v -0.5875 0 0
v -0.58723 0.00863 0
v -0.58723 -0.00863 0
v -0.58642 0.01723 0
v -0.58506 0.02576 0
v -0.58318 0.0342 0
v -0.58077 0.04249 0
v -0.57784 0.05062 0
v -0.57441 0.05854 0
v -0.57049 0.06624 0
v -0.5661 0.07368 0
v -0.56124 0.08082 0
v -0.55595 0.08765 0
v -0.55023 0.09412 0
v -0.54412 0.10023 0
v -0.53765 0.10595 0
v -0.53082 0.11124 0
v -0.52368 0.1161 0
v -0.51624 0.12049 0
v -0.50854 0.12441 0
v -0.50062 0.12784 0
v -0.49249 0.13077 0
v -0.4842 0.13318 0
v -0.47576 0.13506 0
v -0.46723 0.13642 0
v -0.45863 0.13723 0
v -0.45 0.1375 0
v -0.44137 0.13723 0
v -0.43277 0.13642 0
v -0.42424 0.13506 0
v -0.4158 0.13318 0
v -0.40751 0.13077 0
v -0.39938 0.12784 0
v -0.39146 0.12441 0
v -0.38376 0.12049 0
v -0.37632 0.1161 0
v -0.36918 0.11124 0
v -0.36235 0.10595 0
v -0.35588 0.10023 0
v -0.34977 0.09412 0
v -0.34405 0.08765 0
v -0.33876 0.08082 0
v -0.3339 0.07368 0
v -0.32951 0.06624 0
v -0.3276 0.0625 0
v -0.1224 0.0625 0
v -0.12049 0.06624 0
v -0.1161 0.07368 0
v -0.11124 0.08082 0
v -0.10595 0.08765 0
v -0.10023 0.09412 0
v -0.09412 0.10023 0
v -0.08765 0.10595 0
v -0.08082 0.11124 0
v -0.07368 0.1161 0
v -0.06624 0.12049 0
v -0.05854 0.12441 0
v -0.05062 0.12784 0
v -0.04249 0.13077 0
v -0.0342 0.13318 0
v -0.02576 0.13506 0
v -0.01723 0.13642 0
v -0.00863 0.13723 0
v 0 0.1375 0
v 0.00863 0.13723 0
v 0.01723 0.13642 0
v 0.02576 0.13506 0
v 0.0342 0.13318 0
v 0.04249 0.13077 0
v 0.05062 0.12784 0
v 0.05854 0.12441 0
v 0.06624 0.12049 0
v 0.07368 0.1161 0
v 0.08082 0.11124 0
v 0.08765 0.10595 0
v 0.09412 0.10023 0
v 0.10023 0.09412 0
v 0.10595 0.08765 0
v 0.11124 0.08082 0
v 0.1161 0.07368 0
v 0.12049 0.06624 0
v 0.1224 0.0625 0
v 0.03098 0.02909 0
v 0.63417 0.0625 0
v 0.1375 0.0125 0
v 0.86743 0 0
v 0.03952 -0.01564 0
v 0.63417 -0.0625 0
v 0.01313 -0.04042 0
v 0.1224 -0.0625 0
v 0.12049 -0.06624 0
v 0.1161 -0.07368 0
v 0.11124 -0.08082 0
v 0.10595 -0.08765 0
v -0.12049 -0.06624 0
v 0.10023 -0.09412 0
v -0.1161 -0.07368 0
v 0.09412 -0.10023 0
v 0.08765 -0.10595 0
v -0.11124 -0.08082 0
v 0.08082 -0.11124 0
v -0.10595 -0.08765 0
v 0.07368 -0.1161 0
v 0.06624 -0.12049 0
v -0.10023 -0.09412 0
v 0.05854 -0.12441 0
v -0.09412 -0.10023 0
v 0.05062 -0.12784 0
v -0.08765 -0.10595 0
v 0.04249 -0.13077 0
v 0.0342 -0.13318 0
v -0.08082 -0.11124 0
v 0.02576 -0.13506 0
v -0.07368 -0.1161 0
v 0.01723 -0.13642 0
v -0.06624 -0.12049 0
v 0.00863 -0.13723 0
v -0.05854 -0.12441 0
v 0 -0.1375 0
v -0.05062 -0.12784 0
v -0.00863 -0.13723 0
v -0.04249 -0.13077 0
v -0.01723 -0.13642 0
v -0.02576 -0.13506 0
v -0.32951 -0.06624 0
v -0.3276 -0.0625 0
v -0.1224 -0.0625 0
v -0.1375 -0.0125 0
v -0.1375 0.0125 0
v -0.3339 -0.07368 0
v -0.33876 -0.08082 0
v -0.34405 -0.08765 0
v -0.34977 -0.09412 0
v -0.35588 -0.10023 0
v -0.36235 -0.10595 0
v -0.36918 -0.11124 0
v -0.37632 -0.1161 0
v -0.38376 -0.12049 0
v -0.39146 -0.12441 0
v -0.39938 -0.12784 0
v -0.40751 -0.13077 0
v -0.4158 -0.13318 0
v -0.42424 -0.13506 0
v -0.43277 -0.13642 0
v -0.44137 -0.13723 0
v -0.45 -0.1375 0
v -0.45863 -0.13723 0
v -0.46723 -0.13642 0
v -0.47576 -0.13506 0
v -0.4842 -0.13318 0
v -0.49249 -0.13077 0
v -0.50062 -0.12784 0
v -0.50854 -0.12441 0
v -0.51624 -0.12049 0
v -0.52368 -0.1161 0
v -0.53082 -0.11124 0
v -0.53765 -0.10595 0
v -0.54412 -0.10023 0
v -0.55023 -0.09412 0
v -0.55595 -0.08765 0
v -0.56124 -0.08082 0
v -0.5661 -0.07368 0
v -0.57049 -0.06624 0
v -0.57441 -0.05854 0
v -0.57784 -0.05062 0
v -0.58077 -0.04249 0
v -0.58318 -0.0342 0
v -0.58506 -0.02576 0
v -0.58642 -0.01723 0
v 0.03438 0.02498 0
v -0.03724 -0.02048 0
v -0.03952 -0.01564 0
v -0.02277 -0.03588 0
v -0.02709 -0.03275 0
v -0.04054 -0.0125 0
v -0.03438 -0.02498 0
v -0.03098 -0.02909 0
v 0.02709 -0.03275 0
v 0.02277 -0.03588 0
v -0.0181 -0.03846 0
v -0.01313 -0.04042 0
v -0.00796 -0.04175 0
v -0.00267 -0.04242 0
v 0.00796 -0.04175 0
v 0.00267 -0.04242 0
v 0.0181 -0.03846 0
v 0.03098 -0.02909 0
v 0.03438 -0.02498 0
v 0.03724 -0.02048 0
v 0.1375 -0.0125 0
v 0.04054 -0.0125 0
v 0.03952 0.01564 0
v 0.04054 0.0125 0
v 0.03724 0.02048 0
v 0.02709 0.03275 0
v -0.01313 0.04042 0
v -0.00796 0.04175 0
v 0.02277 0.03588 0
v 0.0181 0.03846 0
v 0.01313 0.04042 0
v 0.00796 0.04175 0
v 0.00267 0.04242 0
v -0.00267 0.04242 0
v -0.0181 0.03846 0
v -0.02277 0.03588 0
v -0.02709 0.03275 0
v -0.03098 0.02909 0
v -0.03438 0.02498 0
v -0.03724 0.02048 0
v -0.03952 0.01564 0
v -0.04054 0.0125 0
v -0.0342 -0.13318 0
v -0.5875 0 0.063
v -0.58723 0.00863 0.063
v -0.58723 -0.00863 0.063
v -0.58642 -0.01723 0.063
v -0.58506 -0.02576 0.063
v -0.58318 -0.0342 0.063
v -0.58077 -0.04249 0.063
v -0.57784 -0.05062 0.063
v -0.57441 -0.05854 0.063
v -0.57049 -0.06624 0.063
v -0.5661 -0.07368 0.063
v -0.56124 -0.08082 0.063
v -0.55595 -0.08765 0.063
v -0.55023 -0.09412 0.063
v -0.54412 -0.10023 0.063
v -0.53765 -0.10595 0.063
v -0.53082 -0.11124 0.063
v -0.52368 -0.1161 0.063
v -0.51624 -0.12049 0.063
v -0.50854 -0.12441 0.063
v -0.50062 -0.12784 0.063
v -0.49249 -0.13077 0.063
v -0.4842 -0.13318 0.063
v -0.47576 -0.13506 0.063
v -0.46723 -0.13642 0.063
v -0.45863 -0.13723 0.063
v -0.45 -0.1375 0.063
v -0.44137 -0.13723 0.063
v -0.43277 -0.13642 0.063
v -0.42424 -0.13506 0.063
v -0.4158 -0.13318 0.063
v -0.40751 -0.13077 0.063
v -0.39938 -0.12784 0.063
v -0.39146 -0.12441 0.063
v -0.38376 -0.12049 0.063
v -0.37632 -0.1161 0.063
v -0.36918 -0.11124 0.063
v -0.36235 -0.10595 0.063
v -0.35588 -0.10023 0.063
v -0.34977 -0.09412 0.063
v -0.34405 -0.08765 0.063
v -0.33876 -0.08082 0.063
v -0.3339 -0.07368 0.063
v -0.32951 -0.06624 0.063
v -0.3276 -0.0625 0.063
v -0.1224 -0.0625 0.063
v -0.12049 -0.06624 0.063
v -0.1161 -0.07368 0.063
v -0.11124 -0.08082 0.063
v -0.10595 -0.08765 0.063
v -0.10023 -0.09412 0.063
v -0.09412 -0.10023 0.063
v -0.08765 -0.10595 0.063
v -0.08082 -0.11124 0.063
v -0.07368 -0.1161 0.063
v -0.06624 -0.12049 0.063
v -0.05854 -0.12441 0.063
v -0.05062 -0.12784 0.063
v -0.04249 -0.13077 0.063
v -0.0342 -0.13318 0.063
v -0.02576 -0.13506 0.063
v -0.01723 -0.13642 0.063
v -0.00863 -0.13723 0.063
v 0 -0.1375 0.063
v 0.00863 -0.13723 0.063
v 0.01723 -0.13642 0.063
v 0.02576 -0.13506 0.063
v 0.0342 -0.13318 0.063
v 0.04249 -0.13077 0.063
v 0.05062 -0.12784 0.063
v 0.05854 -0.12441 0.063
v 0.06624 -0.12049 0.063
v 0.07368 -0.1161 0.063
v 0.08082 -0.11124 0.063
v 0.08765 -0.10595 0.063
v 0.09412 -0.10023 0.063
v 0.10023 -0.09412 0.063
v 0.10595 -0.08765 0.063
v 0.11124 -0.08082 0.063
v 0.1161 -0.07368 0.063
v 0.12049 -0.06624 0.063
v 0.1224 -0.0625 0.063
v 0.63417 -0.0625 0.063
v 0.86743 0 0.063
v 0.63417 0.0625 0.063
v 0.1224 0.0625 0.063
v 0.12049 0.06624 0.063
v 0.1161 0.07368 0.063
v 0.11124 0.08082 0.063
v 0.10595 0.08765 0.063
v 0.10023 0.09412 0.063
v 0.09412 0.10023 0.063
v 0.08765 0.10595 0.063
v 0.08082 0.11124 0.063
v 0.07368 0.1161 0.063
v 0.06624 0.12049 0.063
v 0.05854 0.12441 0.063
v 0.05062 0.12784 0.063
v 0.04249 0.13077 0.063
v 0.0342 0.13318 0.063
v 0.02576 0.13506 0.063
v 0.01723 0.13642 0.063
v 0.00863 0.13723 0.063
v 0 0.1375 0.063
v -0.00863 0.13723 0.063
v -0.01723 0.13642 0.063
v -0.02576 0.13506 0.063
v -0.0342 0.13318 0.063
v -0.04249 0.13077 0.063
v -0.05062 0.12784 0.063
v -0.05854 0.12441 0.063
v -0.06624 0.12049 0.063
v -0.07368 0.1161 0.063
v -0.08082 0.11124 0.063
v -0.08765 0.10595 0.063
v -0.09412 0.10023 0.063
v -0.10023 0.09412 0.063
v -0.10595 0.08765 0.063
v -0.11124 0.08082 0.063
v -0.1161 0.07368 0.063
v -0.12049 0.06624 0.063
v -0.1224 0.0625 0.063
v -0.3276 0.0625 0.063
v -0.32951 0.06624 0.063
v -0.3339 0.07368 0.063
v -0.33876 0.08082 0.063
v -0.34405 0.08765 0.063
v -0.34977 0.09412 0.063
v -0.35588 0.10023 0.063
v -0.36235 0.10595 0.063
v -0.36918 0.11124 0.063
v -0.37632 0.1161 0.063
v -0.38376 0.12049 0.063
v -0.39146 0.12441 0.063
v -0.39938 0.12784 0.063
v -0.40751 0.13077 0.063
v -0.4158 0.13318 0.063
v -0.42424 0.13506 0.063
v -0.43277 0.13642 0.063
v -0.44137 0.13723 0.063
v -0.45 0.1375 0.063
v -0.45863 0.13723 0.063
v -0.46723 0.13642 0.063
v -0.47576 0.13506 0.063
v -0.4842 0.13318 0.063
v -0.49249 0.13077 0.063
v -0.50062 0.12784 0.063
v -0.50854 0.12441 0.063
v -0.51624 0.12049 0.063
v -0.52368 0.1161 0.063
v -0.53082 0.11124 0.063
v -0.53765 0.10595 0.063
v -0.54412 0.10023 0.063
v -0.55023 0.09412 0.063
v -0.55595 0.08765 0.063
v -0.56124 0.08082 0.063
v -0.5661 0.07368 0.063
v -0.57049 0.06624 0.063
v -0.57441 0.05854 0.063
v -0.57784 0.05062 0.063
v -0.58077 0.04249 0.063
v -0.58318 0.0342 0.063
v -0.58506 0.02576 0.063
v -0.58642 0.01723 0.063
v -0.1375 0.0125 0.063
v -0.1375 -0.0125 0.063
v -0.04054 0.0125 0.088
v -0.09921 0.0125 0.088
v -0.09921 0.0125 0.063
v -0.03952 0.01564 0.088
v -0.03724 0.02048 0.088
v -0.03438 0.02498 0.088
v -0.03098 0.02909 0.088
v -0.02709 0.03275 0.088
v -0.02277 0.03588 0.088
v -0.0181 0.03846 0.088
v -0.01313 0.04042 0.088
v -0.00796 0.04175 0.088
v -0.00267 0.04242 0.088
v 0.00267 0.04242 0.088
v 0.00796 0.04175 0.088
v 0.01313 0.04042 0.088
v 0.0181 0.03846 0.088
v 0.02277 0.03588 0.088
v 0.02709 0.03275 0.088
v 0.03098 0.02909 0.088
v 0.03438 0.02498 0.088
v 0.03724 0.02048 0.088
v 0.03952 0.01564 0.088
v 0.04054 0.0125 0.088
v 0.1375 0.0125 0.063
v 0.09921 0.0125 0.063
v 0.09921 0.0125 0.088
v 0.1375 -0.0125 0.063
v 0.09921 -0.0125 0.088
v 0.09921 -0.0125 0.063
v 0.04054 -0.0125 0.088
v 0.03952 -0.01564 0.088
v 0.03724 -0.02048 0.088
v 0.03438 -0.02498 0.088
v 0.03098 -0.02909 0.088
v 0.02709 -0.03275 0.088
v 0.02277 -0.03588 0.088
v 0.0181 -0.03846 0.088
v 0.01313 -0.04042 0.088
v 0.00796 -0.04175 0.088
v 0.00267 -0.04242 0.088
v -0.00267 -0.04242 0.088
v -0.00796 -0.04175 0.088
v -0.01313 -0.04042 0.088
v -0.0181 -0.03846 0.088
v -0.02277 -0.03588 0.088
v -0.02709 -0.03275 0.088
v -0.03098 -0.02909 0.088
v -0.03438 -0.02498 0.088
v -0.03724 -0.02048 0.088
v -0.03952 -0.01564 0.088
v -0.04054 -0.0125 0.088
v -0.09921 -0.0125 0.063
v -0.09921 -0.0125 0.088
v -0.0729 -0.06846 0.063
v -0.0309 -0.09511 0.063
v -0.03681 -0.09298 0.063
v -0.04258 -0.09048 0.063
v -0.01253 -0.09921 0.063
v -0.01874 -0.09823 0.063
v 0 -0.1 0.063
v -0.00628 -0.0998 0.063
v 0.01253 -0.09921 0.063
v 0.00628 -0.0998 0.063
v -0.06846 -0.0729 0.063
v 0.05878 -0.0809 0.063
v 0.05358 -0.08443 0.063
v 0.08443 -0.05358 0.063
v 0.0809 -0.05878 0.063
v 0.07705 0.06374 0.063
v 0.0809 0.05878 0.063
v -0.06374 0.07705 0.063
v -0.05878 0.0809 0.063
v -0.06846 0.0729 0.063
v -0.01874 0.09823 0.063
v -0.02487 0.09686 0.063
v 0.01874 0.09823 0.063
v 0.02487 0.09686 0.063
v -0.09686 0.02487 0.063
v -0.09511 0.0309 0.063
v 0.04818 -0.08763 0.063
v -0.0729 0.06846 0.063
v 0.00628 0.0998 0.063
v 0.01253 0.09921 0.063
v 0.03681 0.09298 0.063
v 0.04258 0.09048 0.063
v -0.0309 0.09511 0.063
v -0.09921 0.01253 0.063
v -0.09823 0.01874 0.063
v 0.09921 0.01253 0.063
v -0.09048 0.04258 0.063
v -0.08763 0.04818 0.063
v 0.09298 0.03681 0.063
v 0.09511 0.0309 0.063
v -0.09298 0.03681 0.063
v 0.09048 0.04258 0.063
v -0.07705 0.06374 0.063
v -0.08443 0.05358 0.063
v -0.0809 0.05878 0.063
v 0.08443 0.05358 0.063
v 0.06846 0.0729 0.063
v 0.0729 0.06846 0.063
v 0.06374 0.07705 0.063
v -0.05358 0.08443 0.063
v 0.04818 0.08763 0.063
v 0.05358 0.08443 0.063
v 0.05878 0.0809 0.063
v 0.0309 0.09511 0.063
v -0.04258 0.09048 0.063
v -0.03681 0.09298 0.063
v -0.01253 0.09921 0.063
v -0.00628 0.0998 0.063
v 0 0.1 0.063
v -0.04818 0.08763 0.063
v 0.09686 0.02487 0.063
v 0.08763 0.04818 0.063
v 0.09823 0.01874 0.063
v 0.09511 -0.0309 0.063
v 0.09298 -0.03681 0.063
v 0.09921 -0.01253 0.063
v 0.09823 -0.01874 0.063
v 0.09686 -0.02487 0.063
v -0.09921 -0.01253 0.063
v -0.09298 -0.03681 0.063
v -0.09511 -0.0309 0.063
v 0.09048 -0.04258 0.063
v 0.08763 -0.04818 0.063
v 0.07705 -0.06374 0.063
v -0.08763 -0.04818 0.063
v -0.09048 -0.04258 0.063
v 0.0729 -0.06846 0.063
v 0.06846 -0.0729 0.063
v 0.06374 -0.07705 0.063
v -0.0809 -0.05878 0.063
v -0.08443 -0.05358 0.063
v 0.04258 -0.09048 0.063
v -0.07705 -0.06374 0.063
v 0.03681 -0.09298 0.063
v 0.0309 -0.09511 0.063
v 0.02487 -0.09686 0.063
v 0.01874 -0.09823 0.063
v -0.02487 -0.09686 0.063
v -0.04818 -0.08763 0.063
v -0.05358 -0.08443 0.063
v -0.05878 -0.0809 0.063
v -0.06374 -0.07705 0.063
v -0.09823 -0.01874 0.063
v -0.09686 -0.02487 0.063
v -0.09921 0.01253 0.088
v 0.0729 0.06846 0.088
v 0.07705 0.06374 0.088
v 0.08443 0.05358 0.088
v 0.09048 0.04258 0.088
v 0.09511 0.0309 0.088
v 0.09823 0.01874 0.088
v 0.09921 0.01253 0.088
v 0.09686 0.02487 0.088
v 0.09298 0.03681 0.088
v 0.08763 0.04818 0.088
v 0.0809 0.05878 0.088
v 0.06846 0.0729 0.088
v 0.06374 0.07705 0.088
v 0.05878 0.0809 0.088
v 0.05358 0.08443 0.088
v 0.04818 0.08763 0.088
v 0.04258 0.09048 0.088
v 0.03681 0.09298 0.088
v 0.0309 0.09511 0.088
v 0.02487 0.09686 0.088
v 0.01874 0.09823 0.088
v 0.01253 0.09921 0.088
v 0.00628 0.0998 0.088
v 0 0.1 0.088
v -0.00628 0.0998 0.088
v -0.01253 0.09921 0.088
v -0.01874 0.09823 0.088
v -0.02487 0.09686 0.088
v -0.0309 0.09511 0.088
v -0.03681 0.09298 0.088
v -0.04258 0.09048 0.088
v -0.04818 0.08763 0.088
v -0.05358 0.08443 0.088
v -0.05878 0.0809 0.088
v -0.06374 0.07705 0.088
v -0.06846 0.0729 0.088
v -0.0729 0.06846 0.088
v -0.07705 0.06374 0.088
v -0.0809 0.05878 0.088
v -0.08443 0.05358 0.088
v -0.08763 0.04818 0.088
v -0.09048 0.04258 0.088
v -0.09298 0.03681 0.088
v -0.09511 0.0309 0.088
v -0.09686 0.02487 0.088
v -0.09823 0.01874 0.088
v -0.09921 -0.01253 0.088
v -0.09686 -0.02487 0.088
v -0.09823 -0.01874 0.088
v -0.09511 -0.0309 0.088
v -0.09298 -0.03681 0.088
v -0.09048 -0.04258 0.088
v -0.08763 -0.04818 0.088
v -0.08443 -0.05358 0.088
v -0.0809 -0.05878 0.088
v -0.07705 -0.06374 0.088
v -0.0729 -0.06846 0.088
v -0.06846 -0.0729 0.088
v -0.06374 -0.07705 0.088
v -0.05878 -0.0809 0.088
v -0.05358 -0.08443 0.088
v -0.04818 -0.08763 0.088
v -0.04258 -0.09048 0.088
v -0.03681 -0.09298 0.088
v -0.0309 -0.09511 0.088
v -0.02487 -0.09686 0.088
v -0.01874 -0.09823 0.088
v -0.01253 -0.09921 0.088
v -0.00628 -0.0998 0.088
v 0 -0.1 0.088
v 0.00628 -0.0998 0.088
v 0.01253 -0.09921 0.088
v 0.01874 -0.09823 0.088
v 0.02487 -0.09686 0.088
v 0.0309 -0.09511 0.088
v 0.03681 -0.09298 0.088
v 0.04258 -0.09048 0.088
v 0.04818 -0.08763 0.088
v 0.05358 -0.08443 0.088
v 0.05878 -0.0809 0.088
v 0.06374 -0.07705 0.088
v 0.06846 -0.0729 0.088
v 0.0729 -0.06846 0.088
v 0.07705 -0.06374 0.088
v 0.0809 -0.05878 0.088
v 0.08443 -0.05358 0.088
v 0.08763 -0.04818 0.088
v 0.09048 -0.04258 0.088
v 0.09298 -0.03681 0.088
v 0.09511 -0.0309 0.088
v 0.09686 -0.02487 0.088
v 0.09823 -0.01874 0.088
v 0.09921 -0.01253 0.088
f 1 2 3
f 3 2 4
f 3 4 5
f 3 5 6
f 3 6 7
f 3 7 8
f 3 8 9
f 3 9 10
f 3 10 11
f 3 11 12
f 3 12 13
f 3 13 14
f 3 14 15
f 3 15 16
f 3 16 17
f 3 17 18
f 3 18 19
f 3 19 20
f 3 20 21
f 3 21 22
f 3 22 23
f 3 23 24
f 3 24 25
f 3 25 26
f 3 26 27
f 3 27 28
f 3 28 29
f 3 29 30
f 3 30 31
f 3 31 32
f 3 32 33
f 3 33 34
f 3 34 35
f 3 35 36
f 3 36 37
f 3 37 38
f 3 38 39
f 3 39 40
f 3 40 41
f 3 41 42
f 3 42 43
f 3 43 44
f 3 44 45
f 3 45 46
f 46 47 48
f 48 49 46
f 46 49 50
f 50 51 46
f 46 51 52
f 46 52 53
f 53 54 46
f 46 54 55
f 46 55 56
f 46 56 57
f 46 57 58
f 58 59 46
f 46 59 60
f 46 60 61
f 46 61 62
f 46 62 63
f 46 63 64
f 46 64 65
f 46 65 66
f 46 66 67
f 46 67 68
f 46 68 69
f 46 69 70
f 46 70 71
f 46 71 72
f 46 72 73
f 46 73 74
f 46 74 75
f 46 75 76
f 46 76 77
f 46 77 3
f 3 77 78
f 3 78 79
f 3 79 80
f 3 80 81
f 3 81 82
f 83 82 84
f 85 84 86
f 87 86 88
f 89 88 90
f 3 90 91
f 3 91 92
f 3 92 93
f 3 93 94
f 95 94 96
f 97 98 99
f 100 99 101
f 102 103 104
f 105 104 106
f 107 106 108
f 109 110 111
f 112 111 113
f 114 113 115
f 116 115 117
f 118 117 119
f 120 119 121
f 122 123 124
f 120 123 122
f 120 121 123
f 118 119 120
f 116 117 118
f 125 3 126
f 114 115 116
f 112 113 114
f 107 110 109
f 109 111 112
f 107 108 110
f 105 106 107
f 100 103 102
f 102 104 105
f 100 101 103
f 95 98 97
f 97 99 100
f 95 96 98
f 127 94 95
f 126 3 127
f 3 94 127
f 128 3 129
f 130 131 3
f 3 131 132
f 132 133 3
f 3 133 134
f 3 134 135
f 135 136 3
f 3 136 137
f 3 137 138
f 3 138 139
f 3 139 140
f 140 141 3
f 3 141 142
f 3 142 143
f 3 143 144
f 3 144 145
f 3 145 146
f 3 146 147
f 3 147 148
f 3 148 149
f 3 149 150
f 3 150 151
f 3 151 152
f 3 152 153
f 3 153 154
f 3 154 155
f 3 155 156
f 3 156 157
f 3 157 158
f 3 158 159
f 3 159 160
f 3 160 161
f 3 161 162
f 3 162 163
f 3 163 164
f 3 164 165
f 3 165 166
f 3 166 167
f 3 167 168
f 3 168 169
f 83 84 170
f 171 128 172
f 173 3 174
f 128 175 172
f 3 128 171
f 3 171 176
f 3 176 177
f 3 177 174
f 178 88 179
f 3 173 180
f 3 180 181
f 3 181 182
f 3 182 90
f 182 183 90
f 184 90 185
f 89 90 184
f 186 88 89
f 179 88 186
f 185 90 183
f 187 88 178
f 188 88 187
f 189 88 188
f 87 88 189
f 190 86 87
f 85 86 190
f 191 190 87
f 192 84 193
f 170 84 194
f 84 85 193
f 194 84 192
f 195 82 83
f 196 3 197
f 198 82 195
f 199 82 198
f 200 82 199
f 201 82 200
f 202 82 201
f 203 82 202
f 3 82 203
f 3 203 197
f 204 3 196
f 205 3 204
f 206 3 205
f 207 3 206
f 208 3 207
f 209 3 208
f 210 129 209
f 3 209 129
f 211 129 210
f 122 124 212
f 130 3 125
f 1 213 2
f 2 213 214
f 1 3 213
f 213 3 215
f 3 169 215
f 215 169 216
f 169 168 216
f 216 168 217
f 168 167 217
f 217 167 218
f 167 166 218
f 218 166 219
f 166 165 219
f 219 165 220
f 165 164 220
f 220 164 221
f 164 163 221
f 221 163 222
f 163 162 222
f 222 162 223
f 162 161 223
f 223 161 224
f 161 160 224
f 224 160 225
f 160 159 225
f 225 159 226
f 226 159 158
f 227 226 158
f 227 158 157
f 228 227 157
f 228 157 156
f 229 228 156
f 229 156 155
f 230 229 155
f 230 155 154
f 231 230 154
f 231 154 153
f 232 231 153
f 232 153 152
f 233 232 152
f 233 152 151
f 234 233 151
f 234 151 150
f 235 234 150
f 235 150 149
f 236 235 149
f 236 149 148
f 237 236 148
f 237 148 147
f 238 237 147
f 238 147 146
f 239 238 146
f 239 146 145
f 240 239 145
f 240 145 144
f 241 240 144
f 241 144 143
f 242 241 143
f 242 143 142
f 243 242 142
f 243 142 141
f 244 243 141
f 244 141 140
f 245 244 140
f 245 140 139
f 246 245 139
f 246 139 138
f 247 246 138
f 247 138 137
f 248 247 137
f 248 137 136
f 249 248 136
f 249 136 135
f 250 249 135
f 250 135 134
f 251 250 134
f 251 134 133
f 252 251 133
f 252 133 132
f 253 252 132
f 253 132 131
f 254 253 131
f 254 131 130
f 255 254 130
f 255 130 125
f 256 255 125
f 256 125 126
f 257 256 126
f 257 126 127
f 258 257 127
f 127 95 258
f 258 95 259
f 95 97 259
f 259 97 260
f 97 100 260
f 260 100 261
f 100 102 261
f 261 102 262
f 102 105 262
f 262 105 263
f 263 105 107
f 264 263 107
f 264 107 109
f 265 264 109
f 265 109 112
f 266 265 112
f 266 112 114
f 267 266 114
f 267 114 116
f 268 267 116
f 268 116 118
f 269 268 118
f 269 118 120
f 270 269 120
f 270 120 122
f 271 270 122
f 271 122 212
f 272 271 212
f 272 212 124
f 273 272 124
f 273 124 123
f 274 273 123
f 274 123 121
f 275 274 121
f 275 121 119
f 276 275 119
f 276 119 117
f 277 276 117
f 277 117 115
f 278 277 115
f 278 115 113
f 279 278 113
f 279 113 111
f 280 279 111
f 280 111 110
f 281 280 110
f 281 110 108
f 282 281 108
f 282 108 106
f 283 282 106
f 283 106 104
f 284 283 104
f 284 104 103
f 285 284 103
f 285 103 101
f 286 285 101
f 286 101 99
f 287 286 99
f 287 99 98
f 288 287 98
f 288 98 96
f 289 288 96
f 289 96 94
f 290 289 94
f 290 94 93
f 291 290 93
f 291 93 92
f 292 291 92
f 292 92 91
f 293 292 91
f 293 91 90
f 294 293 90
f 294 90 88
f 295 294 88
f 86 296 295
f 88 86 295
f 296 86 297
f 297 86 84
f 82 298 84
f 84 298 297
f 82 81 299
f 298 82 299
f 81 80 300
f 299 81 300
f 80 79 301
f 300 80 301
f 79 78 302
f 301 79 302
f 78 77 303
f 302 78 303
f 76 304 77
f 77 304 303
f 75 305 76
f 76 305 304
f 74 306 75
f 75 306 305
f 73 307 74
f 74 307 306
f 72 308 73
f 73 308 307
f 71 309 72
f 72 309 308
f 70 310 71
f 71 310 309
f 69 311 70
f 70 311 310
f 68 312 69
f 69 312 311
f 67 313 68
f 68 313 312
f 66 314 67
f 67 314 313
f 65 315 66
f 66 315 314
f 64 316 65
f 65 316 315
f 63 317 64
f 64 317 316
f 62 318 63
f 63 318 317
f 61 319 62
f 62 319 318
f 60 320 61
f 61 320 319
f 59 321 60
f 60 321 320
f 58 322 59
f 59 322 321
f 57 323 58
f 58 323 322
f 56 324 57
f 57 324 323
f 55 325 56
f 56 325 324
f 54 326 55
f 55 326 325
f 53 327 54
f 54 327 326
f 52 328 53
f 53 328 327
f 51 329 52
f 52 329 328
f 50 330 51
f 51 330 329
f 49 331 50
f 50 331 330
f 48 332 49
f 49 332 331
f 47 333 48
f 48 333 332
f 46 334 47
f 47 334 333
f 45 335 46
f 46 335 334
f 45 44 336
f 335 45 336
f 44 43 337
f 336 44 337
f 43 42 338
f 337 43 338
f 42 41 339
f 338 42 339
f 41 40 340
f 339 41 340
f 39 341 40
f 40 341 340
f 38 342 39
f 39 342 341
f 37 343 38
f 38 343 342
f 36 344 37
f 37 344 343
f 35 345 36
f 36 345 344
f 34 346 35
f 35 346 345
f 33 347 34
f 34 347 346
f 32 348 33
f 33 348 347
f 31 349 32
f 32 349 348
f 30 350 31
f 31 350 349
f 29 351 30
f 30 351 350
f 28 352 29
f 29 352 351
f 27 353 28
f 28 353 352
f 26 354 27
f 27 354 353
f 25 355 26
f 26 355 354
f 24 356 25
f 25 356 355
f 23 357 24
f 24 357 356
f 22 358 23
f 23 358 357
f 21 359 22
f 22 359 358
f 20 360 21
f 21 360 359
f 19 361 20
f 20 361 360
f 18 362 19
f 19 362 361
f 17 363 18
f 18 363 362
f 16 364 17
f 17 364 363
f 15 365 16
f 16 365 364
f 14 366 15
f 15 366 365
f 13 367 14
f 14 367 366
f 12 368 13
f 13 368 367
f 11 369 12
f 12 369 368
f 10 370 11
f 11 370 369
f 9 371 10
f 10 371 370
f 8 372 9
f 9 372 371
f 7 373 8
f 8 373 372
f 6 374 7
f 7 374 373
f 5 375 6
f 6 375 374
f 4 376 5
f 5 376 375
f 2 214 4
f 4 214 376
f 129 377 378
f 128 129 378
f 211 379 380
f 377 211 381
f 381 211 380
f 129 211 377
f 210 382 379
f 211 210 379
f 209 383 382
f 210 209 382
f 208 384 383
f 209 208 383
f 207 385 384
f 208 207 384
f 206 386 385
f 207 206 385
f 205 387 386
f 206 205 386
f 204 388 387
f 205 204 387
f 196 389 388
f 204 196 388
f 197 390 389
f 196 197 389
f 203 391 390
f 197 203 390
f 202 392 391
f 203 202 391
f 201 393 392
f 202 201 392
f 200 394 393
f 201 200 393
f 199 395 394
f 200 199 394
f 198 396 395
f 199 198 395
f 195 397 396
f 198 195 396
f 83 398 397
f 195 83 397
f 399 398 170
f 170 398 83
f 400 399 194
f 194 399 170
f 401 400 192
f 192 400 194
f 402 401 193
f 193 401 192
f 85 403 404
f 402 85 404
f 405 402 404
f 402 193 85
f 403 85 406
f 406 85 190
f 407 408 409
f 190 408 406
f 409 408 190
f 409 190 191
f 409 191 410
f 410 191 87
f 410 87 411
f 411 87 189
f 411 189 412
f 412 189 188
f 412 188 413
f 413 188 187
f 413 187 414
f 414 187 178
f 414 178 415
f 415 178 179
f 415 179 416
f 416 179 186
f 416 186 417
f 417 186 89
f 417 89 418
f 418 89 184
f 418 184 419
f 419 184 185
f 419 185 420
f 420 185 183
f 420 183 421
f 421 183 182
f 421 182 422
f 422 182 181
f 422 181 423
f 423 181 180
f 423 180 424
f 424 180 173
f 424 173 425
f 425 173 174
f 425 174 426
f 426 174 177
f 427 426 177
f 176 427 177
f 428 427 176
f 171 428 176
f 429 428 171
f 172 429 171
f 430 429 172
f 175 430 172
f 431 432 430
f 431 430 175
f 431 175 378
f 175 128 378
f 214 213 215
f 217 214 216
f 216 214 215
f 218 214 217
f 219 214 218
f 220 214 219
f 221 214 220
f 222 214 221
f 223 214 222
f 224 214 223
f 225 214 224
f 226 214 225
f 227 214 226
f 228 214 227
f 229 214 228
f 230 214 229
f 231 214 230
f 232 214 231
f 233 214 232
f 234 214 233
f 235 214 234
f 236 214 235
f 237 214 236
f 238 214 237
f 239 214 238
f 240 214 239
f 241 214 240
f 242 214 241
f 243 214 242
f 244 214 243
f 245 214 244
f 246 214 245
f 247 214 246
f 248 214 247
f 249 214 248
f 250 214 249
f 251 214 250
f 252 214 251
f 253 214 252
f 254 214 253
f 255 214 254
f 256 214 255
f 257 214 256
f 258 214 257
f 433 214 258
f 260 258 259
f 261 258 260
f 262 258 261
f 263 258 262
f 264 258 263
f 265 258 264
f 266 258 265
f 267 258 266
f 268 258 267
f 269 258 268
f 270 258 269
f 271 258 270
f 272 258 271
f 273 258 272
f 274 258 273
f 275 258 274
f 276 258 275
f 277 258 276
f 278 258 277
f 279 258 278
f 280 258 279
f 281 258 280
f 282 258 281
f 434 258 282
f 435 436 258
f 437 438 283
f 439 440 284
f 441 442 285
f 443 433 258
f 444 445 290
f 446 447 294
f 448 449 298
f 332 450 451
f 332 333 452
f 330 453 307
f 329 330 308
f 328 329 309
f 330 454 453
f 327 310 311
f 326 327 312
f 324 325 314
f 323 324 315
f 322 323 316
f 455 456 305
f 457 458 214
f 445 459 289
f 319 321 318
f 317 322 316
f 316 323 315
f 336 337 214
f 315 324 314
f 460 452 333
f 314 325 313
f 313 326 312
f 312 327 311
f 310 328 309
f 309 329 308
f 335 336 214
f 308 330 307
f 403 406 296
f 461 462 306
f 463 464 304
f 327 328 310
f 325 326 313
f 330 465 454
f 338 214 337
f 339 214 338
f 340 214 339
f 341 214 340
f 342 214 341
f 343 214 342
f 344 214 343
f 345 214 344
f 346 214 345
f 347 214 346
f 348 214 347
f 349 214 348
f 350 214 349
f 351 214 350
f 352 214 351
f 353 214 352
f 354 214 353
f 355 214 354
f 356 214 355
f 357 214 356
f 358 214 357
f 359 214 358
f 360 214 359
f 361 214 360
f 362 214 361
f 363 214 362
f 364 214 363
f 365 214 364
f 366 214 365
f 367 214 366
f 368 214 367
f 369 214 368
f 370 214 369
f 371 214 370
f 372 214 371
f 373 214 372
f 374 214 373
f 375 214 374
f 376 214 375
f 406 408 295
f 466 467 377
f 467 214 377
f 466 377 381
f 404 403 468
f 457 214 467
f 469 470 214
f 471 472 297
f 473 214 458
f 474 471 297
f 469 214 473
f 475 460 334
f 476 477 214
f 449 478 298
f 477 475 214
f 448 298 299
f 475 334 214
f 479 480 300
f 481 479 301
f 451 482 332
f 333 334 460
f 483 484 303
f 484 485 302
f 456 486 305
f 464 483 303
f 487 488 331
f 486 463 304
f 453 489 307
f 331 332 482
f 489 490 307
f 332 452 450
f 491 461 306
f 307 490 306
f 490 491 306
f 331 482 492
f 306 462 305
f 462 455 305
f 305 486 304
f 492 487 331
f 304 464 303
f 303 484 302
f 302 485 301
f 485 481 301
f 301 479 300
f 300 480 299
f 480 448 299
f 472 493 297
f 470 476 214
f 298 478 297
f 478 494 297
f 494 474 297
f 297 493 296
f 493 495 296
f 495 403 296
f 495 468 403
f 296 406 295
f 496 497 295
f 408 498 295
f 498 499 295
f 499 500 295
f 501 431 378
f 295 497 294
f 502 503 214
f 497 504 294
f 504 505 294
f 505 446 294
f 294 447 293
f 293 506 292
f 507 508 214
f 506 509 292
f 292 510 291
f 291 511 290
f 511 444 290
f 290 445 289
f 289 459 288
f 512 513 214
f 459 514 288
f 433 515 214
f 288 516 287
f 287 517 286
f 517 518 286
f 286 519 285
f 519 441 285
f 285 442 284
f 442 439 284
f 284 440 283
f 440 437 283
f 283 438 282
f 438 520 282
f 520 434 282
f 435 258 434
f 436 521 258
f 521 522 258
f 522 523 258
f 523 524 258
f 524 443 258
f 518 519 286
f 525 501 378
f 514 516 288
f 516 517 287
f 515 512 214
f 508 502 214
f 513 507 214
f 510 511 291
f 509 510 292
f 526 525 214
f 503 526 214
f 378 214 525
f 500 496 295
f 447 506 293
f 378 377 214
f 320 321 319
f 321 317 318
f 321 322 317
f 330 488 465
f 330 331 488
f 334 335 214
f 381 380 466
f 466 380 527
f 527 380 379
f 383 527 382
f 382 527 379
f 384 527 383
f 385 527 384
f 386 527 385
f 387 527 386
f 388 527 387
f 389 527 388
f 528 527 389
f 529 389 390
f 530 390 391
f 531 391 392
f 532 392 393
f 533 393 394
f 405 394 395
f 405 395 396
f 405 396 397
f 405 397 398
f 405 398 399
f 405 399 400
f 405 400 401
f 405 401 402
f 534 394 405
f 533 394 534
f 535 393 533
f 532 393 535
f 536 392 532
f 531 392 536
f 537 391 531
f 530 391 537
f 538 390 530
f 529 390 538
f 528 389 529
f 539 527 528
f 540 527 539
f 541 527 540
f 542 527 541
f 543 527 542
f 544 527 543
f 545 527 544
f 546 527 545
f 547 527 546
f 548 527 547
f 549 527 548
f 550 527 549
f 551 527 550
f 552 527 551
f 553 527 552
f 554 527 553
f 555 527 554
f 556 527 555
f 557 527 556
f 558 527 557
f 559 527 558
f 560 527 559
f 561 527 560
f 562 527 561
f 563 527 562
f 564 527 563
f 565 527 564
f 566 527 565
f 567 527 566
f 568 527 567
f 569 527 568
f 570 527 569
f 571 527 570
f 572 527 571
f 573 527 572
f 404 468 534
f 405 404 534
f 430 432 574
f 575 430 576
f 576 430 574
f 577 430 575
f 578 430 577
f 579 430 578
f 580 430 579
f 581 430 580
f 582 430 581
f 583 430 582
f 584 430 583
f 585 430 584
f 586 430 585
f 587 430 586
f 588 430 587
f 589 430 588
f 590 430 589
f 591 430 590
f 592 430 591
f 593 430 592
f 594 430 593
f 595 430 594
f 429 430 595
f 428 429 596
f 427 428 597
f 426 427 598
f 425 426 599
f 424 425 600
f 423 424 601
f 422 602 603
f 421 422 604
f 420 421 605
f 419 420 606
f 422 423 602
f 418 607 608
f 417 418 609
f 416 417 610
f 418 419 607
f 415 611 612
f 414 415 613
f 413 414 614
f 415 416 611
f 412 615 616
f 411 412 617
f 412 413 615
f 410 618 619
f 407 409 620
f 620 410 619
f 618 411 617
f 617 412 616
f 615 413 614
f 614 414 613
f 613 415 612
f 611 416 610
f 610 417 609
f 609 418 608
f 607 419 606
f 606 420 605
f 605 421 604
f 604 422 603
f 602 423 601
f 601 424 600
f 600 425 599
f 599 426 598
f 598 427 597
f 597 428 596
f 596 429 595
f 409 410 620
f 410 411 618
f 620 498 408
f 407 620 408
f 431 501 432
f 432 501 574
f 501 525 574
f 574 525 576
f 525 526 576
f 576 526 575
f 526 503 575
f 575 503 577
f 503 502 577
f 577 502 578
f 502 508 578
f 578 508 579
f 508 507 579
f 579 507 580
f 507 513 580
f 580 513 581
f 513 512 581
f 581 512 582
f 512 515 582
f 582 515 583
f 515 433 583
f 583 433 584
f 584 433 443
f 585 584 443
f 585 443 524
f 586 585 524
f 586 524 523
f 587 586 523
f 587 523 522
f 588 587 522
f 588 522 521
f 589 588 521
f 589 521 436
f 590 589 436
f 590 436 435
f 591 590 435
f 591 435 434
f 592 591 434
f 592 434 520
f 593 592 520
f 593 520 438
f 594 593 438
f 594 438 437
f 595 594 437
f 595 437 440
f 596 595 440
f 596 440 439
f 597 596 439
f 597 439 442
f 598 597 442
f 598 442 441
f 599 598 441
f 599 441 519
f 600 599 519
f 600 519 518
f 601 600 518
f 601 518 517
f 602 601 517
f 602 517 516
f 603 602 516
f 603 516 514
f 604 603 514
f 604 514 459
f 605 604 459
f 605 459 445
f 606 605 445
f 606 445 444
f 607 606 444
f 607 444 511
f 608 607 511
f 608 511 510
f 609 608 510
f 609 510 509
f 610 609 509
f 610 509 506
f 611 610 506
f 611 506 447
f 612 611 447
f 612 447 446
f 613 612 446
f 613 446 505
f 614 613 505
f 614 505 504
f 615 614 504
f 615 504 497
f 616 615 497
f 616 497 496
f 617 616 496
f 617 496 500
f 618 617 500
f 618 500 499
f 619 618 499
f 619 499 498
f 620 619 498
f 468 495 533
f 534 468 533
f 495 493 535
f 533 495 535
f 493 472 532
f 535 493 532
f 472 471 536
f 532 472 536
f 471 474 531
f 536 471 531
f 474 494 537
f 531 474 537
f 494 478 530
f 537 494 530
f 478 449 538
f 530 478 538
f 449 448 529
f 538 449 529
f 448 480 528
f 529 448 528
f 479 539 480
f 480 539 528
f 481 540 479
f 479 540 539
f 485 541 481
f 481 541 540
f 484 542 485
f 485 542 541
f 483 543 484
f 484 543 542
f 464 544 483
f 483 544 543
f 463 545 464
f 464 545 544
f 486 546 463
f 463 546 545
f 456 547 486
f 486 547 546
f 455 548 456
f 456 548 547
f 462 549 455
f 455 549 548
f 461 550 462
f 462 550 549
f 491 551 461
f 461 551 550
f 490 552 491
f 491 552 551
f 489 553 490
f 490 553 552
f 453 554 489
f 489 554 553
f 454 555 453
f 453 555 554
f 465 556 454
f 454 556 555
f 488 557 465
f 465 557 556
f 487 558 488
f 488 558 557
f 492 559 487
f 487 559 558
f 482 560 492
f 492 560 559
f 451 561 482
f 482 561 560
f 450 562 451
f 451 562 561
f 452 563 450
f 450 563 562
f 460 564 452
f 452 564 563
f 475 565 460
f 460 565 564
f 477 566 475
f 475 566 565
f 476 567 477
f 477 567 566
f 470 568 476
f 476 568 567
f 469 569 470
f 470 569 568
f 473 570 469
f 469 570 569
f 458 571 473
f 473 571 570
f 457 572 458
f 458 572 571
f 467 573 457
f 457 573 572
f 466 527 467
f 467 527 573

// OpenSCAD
indicatorFrontLength = 0.875;
indicatorBackLength = 0.450;
indicatorWidth = 0.125;
indicatorHeight = 0.063;
indicatorCenterHubDiameter = 0.275;
indicatorMountingHubDiameter = 0.200;

cornerRadius = 0.100;

module CornerRounder(x, y, rot)
{
   translate ([x, y, -0.1])
     rotate(a = rot, v = [0, 0, 1])
       difference () {
         cube([cornerRadius + 0.010, cornerRadius + 0.010, 0.2]);
         cylinder(h = 0.5, r = cornerRadius, center=true, $fn = 150);
       }
}

needleBadgeLength = 0.325;
needleBadgeWidth = 0.250;

module needleBadge(offset)
{
  translate([offset, 0, indicatorHeight/2])
    difference() {
      cube([needleBadgeLength, needleBadgeWidth, indicatorHeight], center = true);

      CornerRounder(needleBadgeLength/2 - cornerRadius, needleBadgeWidth/2 - cornerRadius, 0);
      CornerRounder(-needleBadgeLength/2 + cornerRadius, needleBadgeWidth/2 - cornerRadius, 90);
      CornerRounder(-needleBadgeLength/2 + cornerRadius, -needleBadgeWidth/2 + cornerRadius, 180);
      CornerRounder(needleBadgeLength/2 - cornerRadius, -needleBadgeWidth/2 + cornerRadius, 270);
   }
}

module needleIndicator()
{
  difference() {
    union() {
      translate([-indicatorBackLength, -indicatorWidth/2, 0])
        cube([indicatorFrontLength + indicatorBackLength, indicatorWidth, indicatorHeight], center = false);

      cylinder(h = indicatorHeight, d = indicatorCenterHubDiameter, center = false, $fn = 100);
      cylinder(h = indicatorHeight + 0.025, d = indicatorMountingHubDiameter, center = false, $fn = 100);

      translate([-indicatorBackLength, 0, 0])
        cylinder(h = indicatorHeight, d = indicatorCenterHubDiameter, center = false, $fn = 100);
    }

    cylinder(h = 0.500, d = 0.085, center = true, $fn = 50);
    cube([0.275, 0.025, 1], center=true);

    translate([indicatorFrontLength - 0.175, indicatorWidth/2 + 0.50, 0])
      rotate([0,0,75])
        cube([1, 1, 1], center = true);

    translate([indicatorFrontLength - 0.175, -(indicatorWidth/2 + 0.50), 0])
      rotate([0,0,-75])
        cube([1, 1, 1], center = true);

  }
}

module needleWithBadge(badgeOffset)
{
  union () {
    needleIndicator();
    needleBadge(badgeOffset);
  }
}

*translate([0, -0.175, 0])
  needleWithBadge(0.55);
*translate([0, 0.175, 0])
  needleWithBadge(0.40);

needleIndicator();
